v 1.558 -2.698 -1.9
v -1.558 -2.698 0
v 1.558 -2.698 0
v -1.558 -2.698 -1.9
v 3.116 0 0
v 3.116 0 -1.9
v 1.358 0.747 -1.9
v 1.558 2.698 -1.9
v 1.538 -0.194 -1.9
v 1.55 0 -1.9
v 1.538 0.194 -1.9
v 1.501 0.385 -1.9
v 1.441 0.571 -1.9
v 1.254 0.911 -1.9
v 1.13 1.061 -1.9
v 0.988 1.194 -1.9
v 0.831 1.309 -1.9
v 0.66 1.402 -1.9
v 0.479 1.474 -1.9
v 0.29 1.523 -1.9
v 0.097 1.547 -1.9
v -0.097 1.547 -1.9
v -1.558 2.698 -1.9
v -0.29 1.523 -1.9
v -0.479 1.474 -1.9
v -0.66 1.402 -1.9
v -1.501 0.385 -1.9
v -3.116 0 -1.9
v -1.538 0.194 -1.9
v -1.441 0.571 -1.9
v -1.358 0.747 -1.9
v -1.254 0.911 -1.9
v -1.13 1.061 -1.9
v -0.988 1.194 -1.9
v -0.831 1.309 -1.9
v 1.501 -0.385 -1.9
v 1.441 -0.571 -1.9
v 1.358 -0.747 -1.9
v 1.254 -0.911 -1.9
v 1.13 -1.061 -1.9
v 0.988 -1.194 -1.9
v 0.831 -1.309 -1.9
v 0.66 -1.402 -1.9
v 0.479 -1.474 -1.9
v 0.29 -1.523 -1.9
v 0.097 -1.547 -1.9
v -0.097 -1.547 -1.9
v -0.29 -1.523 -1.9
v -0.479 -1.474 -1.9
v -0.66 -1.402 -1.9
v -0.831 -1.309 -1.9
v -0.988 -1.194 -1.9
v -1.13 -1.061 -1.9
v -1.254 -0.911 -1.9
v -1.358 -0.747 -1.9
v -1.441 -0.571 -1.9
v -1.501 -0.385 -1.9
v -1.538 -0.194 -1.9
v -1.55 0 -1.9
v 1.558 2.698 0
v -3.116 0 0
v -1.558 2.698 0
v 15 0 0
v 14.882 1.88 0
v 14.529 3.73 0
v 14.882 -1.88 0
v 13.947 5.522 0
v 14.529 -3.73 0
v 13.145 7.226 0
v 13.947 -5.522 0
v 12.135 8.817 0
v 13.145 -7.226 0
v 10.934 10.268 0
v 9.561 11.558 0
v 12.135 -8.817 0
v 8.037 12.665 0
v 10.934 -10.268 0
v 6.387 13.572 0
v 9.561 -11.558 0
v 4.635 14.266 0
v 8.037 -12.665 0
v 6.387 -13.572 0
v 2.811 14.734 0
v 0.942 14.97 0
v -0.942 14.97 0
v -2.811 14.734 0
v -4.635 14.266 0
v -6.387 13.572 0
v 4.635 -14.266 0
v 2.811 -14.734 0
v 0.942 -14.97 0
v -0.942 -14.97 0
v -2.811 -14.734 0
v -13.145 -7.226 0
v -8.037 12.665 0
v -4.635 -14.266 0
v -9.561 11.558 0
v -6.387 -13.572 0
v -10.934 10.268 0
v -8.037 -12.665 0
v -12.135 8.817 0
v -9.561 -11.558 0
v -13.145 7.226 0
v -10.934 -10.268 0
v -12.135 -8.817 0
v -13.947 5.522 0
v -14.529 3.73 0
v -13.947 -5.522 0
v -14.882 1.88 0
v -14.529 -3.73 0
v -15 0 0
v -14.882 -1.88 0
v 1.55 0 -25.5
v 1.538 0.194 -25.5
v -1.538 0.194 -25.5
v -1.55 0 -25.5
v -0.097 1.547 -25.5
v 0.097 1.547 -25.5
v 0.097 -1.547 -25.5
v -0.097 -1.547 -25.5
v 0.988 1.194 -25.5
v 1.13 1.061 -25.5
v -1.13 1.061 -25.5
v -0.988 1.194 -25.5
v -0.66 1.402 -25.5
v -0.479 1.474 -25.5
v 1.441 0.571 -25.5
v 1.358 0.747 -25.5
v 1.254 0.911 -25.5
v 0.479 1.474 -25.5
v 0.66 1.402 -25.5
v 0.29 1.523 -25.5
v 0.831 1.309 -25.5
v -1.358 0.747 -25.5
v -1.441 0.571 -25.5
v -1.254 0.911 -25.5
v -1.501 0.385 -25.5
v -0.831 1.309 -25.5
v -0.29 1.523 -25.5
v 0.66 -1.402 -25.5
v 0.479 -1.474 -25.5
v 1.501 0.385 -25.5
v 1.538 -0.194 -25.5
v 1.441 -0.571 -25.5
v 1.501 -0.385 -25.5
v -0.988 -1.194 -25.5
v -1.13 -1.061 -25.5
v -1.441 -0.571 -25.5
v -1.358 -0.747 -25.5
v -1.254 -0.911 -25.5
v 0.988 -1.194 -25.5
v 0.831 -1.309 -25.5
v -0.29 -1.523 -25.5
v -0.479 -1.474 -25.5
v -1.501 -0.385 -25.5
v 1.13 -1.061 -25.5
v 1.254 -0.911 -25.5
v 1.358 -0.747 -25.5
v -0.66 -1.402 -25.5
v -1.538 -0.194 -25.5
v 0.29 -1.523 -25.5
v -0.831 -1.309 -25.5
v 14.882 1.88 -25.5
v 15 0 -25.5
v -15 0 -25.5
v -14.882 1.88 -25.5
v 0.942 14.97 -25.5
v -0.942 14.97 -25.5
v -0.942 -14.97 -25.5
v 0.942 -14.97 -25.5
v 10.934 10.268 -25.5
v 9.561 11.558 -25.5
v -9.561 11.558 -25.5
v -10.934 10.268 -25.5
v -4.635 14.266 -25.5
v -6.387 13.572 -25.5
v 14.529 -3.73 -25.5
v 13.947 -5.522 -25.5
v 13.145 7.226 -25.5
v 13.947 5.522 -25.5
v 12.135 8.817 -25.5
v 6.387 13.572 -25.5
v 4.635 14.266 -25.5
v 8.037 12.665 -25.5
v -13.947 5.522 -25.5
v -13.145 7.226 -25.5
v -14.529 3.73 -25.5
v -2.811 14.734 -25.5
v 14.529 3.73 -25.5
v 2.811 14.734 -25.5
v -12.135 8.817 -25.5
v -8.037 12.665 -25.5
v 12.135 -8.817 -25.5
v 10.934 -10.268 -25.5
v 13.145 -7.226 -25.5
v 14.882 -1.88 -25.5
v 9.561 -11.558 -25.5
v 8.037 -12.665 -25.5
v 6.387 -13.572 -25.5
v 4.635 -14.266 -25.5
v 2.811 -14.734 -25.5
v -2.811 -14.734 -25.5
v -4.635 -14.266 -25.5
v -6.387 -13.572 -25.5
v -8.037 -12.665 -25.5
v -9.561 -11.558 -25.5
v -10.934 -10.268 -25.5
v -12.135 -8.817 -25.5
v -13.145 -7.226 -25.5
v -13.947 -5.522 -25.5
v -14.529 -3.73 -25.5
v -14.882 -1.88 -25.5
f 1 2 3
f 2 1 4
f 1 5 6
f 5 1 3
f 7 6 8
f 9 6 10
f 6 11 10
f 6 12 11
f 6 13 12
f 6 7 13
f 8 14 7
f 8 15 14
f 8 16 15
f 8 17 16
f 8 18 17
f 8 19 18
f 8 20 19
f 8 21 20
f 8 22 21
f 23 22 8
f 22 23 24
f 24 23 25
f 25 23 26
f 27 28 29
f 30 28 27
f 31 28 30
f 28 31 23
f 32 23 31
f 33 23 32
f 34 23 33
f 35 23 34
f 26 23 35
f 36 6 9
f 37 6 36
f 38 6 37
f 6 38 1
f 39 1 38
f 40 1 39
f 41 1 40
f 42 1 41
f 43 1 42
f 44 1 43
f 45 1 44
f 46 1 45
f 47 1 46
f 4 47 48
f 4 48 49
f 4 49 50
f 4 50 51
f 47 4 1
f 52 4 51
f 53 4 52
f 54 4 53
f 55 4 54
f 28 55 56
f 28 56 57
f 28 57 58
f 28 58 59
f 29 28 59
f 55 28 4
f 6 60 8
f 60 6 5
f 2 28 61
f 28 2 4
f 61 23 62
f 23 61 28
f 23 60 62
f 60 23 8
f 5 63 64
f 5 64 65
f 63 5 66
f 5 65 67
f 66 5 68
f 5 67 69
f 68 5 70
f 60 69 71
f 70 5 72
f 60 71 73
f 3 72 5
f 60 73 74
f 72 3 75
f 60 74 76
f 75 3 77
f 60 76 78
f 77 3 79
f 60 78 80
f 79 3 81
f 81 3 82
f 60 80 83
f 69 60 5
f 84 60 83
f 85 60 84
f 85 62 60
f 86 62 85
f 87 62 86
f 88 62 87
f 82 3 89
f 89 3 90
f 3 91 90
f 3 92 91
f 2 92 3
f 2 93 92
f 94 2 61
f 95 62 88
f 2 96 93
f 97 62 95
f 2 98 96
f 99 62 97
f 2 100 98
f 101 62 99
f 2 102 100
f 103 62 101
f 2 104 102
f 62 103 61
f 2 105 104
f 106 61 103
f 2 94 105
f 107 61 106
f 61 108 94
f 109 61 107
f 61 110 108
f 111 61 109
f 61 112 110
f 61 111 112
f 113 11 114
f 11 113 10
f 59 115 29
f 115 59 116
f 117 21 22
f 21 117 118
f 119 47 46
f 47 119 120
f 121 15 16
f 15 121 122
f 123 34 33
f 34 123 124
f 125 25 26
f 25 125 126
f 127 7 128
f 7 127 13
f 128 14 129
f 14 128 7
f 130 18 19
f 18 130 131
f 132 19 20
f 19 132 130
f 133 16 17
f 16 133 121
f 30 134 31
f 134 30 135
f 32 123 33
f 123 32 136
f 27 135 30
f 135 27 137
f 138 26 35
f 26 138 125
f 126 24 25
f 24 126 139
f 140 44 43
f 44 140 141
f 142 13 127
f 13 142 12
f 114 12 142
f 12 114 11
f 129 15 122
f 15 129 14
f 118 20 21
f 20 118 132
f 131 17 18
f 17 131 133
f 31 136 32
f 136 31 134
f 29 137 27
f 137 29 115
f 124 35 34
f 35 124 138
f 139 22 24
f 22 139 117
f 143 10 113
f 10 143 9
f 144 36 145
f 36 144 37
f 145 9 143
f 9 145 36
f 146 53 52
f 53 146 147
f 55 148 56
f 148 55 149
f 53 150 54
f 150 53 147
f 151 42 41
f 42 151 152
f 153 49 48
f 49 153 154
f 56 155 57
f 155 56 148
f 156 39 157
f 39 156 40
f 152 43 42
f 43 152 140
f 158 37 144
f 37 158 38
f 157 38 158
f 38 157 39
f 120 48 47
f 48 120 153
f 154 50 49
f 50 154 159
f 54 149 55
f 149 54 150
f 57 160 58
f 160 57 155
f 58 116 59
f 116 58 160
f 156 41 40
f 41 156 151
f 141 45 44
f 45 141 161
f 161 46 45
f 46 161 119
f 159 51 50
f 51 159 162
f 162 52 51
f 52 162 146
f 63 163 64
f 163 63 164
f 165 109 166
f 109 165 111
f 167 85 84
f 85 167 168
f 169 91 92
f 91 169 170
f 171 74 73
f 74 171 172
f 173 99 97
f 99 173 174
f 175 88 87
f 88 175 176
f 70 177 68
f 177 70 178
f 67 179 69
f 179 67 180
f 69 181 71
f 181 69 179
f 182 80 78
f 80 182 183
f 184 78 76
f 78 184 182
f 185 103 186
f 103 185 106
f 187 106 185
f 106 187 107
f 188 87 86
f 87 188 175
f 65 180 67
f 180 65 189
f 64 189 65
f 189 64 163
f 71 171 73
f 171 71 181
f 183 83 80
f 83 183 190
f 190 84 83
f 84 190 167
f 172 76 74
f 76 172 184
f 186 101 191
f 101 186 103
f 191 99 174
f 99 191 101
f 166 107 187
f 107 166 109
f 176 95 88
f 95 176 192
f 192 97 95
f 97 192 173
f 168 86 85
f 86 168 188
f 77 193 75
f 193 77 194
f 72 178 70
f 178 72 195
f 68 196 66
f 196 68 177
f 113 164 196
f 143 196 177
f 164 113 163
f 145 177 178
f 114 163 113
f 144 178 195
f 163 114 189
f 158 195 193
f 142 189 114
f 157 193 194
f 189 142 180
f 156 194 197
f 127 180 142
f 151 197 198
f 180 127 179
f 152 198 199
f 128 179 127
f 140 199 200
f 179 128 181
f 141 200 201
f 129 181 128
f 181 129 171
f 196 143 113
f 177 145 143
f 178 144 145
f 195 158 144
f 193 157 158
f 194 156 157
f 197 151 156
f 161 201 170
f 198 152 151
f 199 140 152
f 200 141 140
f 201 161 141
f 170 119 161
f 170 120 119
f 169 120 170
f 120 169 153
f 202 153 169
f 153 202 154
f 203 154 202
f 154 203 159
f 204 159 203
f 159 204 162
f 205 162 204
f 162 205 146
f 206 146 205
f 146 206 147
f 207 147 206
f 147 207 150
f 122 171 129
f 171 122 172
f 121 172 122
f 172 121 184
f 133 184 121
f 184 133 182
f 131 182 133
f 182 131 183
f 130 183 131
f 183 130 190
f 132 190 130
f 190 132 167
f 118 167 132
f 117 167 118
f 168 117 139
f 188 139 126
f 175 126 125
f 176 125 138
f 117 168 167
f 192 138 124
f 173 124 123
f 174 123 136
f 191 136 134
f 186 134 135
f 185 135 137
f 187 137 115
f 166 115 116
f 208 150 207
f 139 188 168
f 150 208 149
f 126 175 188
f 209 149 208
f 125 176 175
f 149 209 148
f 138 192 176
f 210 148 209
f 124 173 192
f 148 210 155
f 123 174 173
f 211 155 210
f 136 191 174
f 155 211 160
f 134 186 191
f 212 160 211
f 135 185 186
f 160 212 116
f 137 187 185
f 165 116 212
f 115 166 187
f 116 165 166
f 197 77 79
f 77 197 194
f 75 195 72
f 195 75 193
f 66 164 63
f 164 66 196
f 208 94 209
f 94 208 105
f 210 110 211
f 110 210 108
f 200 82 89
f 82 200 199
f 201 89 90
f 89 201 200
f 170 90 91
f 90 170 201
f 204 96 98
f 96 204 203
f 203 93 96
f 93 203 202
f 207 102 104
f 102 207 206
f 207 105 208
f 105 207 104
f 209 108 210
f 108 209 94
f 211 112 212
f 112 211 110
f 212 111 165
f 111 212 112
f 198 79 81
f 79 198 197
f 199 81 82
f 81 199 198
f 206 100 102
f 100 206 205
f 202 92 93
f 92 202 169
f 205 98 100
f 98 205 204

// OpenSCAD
$fn = 50;

difference() {
	union() {
		translate(v = [0, 0, -25.5]) {
			cylinder(h = 25.5, r = 15.0);
		}
	}
	union() {
		translate(v = [0, 0, 0]) {
			rotate(a = [0, 0, 0]) {
				difference() {
					union() {
						translate(v = [0, 0, -1.9]) {
							linear_extrude(height = 1.9) {
								polygon(points = [[3.1158, 0.0], [1.5579000000000005, 2.698361953111554], [-1.5578999999999994, 2.6983619531115544], [-3.1158, 3.815754496783323e-16], [-1.5579000000000014, -2.6983619531115535], [1.557899999999998, -2.6983619531115552]]);
							}
						}
					}
					union();
				}
			}
		}
		#translate(v = [0, 0, -100.0]) {
			cylinder(h = 200, r = 1.55);
		}
	}
}
